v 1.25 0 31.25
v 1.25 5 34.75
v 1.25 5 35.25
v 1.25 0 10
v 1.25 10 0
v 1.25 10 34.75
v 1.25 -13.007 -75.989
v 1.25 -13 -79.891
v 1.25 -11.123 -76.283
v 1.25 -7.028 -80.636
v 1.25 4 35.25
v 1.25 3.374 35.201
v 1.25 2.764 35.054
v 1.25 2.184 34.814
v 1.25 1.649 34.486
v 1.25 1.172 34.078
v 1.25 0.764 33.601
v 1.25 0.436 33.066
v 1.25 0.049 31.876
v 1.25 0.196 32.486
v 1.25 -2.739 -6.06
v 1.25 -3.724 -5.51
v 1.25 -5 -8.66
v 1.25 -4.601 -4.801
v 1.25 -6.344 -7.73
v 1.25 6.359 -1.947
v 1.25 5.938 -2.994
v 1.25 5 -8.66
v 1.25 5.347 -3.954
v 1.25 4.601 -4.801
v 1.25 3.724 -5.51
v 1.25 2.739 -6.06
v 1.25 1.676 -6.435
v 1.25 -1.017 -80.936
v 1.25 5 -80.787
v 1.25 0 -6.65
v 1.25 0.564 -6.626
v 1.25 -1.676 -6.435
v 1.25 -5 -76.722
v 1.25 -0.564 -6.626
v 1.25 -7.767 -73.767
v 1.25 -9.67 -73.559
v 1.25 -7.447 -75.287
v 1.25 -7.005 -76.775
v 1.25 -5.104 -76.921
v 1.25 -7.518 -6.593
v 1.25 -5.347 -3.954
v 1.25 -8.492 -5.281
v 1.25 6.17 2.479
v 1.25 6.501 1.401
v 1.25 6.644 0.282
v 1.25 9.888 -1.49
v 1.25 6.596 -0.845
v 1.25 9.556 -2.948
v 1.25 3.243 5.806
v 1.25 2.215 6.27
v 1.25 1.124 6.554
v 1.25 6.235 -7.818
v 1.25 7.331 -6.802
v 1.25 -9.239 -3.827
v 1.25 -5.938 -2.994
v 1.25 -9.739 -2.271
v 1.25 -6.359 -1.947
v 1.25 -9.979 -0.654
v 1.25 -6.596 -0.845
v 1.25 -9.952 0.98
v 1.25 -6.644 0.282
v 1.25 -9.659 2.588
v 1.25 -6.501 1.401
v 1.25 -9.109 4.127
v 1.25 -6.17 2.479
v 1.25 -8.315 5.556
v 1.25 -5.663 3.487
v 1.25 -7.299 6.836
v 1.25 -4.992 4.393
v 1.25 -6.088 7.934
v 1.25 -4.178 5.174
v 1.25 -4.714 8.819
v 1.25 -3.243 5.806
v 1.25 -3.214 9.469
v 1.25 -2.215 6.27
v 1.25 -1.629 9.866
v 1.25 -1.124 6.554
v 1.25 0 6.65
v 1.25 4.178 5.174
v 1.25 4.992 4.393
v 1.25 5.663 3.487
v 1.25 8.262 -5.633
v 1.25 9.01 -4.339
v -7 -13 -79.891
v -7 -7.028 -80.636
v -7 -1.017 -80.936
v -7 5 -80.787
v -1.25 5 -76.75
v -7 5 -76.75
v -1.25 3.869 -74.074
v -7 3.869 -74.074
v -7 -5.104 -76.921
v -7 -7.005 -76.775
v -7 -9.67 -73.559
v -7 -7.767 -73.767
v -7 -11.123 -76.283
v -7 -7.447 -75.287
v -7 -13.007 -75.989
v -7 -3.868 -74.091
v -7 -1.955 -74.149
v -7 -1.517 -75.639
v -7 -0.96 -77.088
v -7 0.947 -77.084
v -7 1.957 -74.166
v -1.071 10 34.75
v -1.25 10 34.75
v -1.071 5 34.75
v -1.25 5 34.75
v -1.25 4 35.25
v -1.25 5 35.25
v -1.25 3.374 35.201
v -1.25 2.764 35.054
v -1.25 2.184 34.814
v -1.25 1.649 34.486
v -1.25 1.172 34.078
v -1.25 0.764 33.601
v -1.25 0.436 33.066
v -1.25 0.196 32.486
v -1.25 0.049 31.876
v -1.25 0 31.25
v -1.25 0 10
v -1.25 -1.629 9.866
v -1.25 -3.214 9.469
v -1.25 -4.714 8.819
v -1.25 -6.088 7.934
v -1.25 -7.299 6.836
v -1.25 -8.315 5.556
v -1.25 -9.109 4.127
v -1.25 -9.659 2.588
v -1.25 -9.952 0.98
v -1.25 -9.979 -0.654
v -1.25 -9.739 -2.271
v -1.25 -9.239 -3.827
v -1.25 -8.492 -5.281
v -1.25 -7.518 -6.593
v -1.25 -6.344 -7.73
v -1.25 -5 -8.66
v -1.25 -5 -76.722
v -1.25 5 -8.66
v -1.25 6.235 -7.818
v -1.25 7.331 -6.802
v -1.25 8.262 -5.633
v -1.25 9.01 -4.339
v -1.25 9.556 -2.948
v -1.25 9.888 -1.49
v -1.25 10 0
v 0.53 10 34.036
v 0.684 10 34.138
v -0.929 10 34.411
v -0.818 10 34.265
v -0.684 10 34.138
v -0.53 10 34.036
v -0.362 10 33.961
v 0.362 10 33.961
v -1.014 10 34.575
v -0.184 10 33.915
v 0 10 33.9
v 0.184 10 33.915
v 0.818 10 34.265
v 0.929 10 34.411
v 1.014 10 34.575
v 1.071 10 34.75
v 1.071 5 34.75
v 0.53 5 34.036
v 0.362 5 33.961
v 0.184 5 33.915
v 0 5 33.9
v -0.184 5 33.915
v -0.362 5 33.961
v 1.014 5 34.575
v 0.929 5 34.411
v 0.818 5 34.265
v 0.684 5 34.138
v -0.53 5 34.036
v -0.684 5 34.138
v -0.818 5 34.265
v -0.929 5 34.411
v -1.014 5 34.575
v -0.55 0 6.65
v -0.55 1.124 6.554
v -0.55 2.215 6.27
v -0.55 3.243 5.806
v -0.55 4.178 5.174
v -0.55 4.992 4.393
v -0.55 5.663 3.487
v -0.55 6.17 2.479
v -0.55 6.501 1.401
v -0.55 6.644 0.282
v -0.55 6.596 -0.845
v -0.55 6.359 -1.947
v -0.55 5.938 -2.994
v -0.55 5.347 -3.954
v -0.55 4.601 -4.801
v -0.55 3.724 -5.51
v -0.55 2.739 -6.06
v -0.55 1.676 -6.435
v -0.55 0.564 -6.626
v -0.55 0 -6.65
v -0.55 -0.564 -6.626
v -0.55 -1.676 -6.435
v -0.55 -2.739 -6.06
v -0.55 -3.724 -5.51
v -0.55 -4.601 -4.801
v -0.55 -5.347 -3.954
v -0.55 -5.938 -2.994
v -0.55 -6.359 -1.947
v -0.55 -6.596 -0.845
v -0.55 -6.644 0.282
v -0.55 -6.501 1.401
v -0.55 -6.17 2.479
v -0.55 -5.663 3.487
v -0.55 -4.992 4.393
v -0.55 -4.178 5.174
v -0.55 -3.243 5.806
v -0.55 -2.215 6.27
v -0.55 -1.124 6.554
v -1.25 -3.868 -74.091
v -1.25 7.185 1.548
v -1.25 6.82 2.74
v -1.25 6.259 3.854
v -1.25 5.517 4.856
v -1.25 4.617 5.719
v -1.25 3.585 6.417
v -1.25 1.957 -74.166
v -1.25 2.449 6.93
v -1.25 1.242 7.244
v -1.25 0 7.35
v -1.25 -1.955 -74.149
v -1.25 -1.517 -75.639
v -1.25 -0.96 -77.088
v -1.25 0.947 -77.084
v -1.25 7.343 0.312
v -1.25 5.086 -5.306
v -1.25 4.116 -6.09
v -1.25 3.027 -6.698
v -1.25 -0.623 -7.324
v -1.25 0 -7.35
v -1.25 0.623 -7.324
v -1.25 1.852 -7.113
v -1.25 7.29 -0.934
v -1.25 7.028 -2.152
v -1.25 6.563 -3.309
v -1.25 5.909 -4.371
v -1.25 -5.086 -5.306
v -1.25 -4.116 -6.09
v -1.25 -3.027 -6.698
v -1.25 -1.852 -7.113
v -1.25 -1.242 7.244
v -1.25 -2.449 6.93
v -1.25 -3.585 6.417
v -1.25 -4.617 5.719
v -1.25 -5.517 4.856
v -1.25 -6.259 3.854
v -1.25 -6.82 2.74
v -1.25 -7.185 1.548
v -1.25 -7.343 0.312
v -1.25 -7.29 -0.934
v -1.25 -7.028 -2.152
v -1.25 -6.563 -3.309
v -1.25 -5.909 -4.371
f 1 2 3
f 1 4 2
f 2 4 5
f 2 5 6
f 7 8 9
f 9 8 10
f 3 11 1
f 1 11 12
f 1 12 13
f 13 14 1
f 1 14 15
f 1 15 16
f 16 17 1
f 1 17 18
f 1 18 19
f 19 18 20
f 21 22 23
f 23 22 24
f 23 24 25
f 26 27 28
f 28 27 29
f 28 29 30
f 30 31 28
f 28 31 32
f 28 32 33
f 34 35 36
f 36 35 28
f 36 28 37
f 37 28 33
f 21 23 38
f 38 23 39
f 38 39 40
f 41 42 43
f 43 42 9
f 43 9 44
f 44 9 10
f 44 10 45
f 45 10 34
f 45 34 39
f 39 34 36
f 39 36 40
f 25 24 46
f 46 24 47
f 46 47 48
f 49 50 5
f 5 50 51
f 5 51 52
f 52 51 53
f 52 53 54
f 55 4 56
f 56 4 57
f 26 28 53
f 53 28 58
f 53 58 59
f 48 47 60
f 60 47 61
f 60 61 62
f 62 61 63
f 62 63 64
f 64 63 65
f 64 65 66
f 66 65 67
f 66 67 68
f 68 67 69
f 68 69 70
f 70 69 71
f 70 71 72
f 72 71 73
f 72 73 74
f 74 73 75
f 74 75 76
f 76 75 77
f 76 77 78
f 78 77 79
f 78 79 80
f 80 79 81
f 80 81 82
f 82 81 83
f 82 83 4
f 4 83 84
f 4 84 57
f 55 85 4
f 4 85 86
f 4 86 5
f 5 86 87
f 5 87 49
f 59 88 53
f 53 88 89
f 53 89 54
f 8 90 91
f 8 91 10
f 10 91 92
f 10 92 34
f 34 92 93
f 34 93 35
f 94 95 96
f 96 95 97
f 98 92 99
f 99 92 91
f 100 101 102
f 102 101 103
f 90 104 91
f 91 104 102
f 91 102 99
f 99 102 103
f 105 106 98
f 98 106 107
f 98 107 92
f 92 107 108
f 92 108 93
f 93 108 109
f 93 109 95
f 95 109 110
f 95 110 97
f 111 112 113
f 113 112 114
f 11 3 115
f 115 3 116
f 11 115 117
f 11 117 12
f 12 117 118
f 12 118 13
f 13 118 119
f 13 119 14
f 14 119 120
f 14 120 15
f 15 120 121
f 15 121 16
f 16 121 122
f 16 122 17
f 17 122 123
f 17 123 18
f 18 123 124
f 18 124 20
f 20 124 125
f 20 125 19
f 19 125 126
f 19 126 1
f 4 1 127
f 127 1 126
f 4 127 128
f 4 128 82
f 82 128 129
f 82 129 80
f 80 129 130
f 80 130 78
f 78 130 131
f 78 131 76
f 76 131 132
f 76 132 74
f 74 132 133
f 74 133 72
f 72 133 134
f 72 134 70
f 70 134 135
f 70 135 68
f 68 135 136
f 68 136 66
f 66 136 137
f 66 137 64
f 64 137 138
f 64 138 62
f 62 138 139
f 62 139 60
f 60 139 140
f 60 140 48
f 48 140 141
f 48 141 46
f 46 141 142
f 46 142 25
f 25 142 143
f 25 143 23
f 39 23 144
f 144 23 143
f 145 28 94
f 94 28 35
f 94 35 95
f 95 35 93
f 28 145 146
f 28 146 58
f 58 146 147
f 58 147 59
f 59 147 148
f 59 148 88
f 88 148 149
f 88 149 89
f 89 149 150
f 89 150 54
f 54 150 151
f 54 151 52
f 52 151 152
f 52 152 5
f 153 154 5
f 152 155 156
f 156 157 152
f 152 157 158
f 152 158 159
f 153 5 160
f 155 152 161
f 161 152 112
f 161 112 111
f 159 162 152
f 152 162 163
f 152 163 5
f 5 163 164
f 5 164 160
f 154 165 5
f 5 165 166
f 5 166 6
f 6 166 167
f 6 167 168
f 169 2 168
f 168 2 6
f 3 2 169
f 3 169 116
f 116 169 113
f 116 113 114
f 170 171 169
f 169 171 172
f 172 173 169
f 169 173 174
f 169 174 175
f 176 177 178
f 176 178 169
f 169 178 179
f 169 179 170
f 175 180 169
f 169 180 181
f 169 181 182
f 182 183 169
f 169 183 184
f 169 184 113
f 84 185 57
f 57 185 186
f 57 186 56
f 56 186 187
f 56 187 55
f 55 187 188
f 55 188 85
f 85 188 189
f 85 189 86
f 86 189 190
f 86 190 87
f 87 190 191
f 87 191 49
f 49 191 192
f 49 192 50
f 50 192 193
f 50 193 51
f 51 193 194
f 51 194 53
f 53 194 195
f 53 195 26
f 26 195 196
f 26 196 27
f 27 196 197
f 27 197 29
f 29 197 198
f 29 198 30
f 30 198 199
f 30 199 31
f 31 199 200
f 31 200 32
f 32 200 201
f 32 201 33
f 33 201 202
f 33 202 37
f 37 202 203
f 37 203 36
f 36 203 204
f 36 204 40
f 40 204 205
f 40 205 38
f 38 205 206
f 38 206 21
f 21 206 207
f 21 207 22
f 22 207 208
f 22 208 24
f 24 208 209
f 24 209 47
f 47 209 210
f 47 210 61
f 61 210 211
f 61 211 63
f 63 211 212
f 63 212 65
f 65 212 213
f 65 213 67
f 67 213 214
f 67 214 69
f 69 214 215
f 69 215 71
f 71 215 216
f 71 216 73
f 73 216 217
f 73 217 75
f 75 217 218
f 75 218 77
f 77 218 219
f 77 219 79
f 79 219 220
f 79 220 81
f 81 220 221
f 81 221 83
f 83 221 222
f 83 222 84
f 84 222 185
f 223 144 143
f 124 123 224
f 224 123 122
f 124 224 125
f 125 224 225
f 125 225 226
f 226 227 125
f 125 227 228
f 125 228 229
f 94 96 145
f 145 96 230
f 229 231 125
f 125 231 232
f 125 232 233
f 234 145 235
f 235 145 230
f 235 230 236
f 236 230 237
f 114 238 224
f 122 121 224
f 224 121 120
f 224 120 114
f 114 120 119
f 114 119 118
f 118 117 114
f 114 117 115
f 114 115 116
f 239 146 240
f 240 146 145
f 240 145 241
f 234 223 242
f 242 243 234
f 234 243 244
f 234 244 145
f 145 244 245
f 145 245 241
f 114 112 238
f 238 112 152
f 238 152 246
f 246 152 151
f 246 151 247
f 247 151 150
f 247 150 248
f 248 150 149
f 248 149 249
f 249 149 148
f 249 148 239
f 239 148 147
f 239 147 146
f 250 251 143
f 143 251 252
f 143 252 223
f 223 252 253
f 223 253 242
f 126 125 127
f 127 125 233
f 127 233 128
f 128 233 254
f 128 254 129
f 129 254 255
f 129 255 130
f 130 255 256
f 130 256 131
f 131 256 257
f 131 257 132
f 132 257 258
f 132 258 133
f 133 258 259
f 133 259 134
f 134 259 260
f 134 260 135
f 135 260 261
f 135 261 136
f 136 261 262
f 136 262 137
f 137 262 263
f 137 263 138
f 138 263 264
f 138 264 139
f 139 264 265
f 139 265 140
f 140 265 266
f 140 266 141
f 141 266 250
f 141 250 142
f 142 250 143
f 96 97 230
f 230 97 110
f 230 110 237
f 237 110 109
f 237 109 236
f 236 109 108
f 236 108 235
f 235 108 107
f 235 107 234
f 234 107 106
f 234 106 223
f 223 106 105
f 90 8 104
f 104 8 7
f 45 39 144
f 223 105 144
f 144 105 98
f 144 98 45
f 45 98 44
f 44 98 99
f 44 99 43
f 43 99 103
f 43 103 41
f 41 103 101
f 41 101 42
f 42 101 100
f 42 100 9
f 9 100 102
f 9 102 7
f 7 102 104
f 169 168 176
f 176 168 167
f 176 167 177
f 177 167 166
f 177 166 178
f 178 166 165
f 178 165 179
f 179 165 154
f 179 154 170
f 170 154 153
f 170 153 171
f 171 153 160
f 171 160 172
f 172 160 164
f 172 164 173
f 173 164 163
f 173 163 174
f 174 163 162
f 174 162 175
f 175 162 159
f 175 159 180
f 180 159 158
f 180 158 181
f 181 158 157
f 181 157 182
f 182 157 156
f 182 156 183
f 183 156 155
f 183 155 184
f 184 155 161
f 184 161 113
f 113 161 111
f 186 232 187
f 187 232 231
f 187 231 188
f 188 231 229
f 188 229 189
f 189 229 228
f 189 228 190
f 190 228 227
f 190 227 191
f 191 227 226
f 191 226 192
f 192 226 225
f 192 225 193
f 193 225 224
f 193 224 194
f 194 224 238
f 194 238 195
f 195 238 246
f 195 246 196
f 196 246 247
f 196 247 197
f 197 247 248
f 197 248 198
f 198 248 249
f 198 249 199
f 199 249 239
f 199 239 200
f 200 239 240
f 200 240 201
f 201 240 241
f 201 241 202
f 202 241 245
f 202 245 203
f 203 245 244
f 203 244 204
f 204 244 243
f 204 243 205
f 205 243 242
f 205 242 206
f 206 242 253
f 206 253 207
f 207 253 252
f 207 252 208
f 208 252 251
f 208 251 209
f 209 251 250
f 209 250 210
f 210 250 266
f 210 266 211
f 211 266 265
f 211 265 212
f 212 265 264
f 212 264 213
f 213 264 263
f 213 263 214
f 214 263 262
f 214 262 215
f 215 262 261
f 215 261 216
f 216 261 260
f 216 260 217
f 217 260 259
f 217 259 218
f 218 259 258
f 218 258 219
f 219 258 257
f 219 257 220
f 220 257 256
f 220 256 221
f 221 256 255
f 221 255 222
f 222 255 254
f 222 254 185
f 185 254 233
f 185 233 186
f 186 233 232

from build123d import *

# Parameters (mm, degrees)
SKETCH_1_R              = 6.65
EXTRUDE_1_DEPTH         = 1.25
EXTRUDE_2_DEPTH         = 1.25
EXTRUDE_2_DEPTH_BACK    = 7
SKETCH_3_R              = 1.1
CUT_EXTRUDE_1_DEPTH     = 5
CHAMFER_1_SIZE          = 0.7
CUT_EXTRUDE1_DEPTH      = 10
CUT_EXTRUDE1_DEPTH_BACK = 10
SKETCH1_W               = 17.169793681
SKETCH1_H               = 8.928336681


with BuildPart() as part:
    # Эскиз1 → Бобышка-Вытянуть1 (new, symmetric)
    with BuildSketch(Plane(origin=(0, 0, 0), x_dir=(0, 0, -1), z_dir=(1, 0, 0))):
        with BuildLine():
            Line((-31.25, 0), (-10, 0))
            ThreePointArc((-10, 0), (-2.588190451, -9.659258263), (8.660254038, -5))
            Line((8.660254038, -5), (76.721847542, -5))
            ThreePointArc((76.721847542, -5), (75.425886146, -4.389181279), (74.09117429, -3.868451302))
            ThreePointArc((74.09117429, -3.868451302), (74.147561595, -2.912548148), (74.149130868, -1.954984622))
            ThreePointArc((74.149130868, -1.954984622), (75.638846987, -1.51744657), (77.087831178, -0.959648686))
            ThreePointArc((77.087831178, -0.959648686), (77.109856091, -0.006099484), (77.083941958, 0.947351948))
            ThreePointArc((77.083941958, 0.947351948), (75.643750299, 1.505844774), (74.166291118, 1.956600379))
            ThreePointArc((74.166291118, 1.956600379), (74.147505302, 2.913980899), (74.073940169, 3.8687157))
            ThreePointArc((74.073940169, 3.8687157), (75.433826566, 4.383081961), (76.750365892, 5))
            Line((76.750365892, 5), (8.660254038, 5))
            ThreePointArc((8.660254038, 5), (5, 8.660254038), (0, 10))
            Line((0, 10), (-34.75, 10))
            Line((-34.75, 10), (-34.75, 5))
            Line((-34.75, 5), (-35.25, 5))
            Line((-35.25, 5), (-35.25, 4))
            ThreePointArc((-35.25, 4), (-34.078427125, 1.171572875), (-31.25, 0))
        make_face()
        Circle(SKETCH_1_R, mode=Mode.SUBTRACT)
    extrude(amount=EXTRUDE_1_DEPTH, both=True)

    # Эскиз1<5> → Бобышка-Вытянуть2 (add, two sides: drawn at the far end of the back side and taken through both)
    with BuildSketch(Plane(origin=(0, 0, 0), x_dir=(0, 0, -1), z_dir=(1, 0, 0)).offset(-EXTRUDE_2_DEPTH_BACK)):
        with BuildLine():
            Line((73.559260736, 9.685830974), (74.227172899, 10))
            Line((74.227172899, 10), (80.32185029, 10))
            ThreePointArc((80.32185029, 10), (80.927765714, -1.515378033), (79.891173693, -13))
            Line((79.891173693, -13), (75.988629927, -13.007027449))
            ThreePointArc((75.988629927, -13.007027449), (76.159551637, -12.068663477), (76.283109214, -11.12289675))
            ThreePointArc((76.283109214, -11.12289675), (74.948016231, -10.345984286), (73.559260736, -9.669652694))
            ThreePointArc((73.559260736, -9.669652694), (73.690473514, -8.721120367), (73.767167518, -7.766631814))
            ThreePointArc((73.767167518, -7.766631814), (75.28662018, -7.447324325), (76.774901953, -7.004931935))
            ThreePointArc((76.774901953, -7.004931935), (76.871673579, -6.056050262), (76.920646267, -5.103504803))
            ThreePointArc((76.920646267, -5.103504803), (75.528713081, -4.433737489), (74.09117429, -3.868451302))
            ThreePointArc((74.09117429, -3.868451302), (74.147561595, -2.912548148), (74.149130868, -1.954984622))
            ThreePointArc((74.149130868, -1.954984622), (75.638846987, -1.51744657), (77.087831178, -0.959648686))
            ThreePointArc((77.087831178, -0.959648686), (77.109856091, -0.006099484), (77.083941958, 0.947351948))
            ThreePointArc((77.083941958, 0.947351948), (75.643750299, 1.505844774), (74.166291118, 1.956600379))
            ThreePointArc((74.166291118, 1.956600379), (74.147505302, 2.913980899), (74.073940169, 3.8687157))
            ThreePointArc((74.073940169, 3.8687157), (75.524735151, 4.421786748), (76.925488289, 5.091551117))
            ThreePointArc((76.925488289, 5.091551117), (76.872630699, 6.043888899), (76.771989513, 6.992367959))
            ThreePointArc((76.771989513, 6.992367959), (75.292418643, 7.436143003), (73.784148097, 7.769588967))
            ThreePointArc((73.784148097, 7.769588967), (73.691130431, 8.729989779), (73.559260736, 9.685830974))
        make_face()
    extrude(amount=EXTRUDE_2_DEPTH + EXTRUDE_2_DEPTH_BACK)

    # Эскиз3 → Вырез-Вытянуть1 (cut)
    with BuildSketch(Plane(origin=(0, 10, 0), x_dir=(1, 0, 0), z_dir=(0, 1, 0))):
        with Locations((0, -35)):
            Circle(SKETCH_3_R)
    extrude(amount=-CUT_EXTRUDE_1_DEPTH, mode=Mode.SUBTRACT)

    # Фаска1
    chamfer_1_edges = [part.edges().sort_by_distance(p)[0] for p in [
        (-1.25, 0, 6.65),
    ]]
    chamfer(chamfer_1_edges, length=CHAMFER_1_SIZE)

    # Sketch1 → Cut-Extrude1 (cut, two sides: drawn at the far end of the back side and taken through both)
    with BuildSketch(Plane(origin=(0, 0, 0), x_dir=(0, 0, -1), z_dir=(1, 0, 0)).offset(-CUT_EXTRUDE1_DEPTH_BACK)):
        with Locations((77.607372566, 9.464168341)):
            Rectangle(SKETCH1_W, SKETCH1_H)
    extrude(amount=CUT_EXTRUDE1_DEPTH + CUT_EXTRUDE1_DEPTH_BACK, mode=Mode.SUBTRACT)


solid = part.part
